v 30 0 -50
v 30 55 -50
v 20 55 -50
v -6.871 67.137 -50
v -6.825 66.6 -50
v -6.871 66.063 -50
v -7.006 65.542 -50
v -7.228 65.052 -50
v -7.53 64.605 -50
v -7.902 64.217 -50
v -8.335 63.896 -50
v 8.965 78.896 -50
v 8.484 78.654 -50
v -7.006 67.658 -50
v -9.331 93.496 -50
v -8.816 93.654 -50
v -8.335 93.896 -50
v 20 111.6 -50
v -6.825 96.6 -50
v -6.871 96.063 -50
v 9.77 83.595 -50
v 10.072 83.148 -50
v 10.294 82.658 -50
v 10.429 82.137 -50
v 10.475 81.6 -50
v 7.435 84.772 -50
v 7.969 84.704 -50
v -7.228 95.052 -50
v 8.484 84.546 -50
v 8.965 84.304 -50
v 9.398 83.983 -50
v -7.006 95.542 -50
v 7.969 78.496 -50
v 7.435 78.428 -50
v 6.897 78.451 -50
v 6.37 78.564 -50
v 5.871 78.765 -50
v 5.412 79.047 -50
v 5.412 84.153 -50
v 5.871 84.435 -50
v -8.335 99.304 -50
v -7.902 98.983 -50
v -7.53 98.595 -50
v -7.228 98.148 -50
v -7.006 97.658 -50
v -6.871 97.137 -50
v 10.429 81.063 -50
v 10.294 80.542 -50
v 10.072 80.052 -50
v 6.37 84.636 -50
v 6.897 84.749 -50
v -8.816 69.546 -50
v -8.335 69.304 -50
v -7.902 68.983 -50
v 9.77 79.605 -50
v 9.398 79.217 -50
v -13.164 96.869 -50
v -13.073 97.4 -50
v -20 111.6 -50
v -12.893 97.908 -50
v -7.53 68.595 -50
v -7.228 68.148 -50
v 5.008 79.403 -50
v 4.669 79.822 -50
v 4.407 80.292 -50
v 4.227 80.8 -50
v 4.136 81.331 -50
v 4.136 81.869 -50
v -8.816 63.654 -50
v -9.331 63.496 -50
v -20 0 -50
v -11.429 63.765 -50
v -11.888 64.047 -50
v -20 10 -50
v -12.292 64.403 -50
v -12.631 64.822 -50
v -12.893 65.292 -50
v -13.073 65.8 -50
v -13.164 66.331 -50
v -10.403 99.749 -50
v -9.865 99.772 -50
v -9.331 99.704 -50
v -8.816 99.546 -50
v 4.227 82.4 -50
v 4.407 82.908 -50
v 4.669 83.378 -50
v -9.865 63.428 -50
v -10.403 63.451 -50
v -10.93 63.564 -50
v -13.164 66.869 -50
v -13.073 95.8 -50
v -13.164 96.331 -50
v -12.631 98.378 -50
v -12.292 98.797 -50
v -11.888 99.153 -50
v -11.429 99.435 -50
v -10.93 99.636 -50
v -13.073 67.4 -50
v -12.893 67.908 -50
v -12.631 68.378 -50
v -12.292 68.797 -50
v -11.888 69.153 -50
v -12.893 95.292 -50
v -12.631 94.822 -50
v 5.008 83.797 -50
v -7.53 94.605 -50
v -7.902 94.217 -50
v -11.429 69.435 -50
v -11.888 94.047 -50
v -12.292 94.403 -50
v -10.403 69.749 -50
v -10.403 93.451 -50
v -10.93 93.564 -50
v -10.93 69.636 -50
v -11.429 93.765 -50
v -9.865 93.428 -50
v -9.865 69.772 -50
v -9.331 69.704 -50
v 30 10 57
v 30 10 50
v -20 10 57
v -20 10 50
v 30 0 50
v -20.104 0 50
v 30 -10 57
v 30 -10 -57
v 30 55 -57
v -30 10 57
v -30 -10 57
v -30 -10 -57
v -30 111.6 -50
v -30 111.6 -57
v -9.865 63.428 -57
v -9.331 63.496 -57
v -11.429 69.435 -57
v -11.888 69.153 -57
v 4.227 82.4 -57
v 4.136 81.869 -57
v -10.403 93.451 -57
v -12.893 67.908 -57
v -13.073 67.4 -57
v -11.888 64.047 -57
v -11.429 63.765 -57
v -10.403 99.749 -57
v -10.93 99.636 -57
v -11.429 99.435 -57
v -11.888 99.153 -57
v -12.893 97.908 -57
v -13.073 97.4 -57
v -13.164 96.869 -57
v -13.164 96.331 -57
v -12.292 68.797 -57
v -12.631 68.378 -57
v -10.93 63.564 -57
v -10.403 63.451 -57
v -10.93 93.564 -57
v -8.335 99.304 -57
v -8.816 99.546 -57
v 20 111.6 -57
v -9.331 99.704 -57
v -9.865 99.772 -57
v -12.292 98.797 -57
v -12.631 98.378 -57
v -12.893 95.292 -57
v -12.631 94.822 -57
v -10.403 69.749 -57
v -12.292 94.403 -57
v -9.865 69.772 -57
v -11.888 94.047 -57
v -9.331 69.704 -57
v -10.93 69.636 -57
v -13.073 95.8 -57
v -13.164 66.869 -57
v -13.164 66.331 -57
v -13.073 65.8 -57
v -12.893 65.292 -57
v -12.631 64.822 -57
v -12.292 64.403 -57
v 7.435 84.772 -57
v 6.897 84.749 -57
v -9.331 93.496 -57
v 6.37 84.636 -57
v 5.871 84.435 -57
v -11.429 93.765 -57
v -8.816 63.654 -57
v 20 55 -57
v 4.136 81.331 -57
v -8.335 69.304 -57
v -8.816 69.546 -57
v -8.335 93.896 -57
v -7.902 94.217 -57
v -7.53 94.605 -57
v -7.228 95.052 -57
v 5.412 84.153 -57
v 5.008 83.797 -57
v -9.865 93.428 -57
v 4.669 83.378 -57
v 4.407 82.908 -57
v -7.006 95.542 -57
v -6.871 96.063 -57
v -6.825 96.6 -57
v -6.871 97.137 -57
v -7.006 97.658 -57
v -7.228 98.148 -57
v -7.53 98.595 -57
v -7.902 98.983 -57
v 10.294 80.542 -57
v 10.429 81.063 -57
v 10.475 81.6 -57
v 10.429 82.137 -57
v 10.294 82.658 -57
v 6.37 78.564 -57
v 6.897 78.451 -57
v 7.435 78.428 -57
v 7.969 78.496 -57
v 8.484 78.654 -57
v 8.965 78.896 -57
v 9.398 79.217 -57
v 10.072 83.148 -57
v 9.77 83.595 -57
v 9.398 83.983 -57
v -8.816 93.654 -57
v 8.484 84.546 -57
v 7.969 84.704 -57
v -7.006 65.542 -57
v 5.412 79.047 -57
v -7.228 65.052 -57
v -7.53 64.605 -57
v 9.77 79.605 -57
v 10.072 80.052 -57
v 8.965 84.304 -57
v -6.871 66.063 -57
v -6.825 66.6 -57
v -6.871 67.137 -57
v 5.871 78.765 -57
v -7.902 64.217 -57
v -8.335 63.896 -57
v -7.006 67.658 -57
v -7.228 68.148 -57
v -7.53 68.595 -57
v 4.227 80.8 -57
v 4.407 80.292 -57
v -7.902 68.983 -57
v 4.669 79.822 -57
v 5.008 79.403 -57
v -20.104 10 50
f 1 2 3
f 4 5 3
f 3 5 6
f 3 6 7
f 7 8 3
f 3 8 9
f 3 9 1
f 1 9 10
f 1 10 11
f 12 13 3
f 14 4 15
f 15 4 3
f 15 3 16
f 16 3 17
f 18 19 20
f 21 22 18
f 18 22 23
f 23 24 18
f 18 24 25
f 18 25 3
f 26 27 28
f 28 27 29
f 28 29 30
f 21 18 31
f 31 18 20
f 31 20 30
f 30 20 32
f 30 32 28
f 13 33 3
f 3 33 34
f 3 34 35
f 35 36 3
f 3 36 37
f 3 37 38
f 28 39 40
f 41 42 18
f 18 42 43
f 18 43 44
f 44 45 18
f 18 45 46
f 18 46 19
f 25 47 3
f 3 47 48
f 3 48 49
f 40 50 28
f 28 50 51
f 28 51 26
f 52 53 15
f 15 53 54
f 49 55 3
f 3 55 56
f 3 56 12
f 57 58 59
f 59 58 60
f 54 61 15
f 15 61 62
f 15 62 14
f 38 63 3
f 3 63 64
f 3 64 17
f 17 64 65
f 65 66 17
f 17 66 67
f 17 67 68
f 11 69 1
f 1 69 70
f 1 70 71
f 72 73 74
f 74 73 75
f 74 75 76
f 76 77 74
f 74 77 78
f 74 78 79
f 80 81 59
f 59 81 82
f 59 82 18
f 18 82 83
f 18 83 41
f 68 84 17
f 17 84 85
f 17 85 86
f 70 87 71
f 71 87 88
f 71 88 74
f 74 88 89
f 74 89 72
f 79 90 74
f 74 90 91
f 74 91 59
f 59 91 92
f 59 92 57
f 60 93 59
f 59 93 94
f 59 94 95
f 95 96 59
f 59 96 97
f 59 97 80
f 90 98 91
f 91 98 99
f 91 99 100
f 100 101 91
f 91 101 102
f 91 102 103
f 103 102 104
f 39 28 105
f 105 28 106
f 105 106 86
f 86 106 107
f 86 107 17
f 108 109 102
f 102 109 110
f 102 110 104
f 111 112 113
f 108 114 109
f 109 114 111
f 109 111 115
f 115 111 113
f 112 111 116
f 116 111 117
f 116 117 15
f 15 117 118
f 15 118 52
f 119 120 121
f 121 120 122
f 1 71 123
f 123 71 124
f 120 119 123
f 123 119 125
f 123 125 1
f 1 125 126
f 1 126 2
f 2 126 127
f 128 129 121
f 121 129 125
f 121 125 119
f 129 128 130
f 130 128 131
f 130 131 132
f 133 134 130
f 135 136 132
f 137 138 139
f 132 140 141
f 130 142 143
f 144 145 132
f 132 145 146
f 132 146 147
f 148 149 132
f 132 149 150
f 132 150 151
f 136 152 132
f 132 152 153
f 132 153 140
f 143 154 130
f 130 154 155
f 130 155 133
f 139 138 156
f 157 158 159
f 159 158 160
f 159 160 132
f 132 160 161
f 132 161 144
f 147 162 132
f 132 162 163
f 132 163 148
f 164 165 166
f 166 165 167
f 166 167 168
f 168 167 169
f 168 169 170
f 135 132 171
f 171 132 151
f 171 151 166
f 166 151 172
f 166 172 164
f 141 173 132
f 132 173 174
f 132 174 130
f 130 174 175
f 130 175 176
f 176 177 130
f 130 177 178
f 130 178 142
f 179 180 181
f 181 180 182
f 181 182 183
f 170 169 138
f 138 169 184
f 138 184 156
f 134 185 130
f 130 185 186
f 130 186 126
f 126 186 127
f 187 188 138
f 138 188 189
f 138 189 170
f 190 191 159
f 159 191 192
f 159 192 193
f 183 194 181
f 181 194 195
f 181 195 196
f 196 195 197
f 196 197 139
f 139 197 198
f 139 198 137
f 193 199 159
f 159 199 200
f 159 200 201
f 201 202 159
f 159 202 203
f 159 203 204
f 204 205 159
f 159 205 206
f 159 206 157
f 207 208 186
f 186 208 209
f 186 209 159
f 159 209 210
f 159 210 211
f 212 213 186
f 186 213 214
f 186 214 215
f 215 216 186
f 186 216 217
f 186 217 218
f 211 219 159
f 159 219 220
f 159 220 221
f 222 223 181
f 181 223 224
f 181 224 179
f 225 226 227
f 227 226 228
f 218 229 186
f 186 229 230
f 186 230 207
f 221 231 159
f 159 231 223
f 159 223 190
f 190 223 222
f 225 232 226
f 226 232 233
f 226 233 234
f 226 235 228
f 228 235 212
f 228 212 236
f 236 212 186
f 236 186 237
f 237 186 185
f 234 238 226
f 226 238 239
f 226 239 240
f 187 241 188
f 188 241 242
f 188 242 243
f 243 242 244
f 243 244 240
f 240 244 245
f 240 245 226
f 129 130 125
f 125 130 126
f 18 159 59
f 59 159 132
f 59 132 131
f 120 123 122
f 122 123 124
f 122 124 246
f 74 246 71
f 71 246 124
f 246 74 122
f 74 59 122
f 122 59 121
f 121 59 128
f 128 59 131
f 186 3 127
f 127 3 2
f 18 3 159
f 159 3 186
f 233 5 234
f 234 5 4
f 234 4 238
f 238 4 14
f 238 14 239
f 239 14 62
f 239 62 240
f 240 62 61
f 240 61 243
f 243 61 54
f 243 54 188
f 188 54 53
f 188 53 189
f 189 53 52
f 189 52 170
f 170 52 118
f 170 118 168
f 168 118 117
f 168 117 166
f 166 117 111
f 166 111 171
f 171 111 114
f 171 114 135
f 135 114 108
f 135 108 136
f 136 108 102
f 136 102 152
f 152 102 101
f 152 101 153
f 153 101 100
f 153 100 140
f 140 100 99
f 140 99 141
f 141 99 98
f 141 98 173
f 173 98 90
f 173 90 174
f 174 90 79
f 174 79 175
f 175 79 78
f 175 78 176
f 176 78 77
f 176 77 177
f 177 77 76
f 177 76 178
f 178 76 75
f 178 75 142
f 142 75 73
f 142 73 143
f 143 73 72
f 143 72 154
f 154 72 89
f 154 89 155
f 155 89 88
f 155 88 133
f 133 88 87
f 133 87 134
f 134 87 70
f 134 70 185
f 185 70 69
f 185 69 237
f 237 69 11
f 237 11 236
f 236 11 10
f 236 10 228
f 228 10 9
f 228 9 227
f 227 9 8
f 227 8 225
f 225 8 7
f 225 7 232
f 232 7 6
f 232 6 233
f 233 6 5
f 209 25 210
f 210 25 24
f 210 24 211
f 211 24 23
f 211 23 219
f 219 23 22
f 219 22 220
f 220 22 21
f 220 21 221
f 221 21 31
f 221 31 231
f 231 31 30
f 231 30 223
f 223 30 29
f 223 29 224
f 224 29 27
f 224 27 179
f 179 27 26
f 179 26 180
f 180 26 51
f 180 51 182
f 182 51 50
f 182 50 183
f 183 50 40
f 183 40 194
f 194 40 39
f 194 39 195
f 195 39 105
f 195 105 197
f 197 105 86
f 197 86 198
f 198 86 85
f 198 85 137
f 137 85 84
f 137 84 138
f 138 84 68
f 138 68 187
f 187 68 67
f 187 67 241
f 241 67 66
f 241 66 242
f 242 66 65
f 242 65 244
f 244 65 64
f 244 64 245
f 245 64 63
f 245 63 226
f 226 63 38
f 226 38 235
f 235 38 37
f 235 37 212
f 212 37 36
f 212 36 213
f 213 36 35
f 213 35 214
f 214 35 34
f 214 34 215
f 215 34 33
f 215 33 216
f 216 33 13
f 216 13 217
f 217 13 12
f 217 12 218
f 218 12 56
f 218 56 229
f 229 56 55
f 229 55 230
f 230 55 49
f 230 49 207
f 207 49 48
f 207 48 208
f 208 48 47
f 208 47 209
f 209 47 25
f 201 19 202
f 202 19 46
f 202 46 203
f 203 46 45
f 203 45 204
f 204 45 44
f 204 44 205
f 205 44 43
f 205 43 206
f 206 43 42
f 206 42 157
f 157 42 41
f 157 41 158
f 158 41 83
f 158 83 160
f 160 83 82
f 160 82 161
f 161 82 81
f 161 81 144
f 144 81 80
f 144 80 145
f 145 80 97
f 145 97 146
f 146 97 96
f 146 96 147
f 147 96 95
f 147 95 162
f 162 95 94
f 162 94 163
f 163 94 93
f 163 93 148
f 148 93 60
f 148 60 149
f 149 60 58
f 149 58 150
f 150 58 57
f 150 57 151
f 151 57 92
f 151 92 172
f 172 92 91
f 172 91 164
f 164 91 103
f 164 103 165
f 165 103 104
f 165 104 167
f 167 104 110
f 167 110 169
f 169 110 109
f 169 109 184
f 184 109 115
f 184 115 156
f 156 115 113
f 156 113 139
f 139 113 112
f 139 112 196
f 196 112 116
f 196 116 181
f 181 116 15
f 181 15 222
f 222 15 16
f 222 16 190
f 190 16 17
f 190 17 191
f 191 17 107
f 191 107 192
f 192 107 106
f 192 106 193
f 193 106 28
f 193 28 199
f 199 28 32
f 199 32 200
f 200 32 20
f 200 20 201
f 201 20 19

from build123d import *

# Parameters (mm, degrees)
SKETCH1_W           = 60
SKETCH1_H           = 114
BOSS_EXTRUDE1_DEPTH = 10
SKETCH3_W           = 60
SKETCH3_H           = 7
BOSS_EXTRUDE2_DEPTH = 111.6
BOSS_EXTRUDE5_DEPTH = 10
BOSS_EXTRUDE3_DEPTH = 10
SKETCH7_W           = 10
SKETCH7_H           = 7
CUT_EXTRUDE1_DEPTH  = 56.6
SKETCH8_R           = 3.175
CUT_EXTRUDE2_DEPTH  = 8


with BuildPart() as part:
    # Sketch1 → Boss-Extrude1 (new body)
    with BuildSketch(Plane(origin=(0, 0, 0), x_dir=(1, 0, 0), z_dir=(0, 1, 0))):
        Rectangle(SKETCH1_W, SKETCH1_H)
    extrude(amount=-BOSS_EXTRUDE1_DEPTH)

    # Sketch3 → Boss-Extrude2 (add)
    with BuildSketch(Plane(origin=(0, 0, 0), x_dir=(1, 0, 0), z_dir=(0, 1, 0))):
        with Locations((0, 53.5)):
            Rectangle(SKETCH3_W, SKETCH3_H)
    extrude(amount=BOSS_EXTRUDE2_DEPTH)

    # Sketch6 → Boss-Extrude5 (add)
    with BuildSketch(Plane(origin=(0, 0, 0), x_dir=(1, 0, 0), z_dir=(0, 1, 0))):
        Polygon((-30, 50), (-20, 50), (-20.103587149, -50), (30, -50), (30, -57), (-30, -57), align=None)
    extrude(amount=BOSS_EXTRUDE5_DEPTH)

    # Sketch4 → Boss-Extrude3 (add)
    with BuildSketch(Plane.ZY.offset(30)):
        Polygon((-57, 10), (57, 10), (-50, 111.6), (-57, 111.6), align=None)
    extrude(amount=-BOSS_EXTRUDE3_DEPTH)

    # Sketch7 → Cut-Extrude1 (cut)
    with BuildSketch(Plane(origin=(0, 111.6, 0), x_dir=(1, 0, 0), z_dir=(0, 1, 0))):
        with Locations((25, 53.5)):
            Rectangle(SKETCH7_W, SKETCH7_H)
    extrude(amount=-CUT_EXTRUDE1_DEPTH, mode=Mode.SUBTRACT)

    # Sketch8 → Cut-Extrude2 (cut, through all)
    with BuildSketch(Plane.XY.offset(-50)):
        with Locations((-10, 96.6)):
            Circle(SKETCH8_R)
        with Locations((7.3, 81.6)):
            Circle(SKETCH8_R)
        with Locations((-10, 66.6)):
            Circle(SKETCH8_R)
    extrude(amount=-CUT_EXTRUDE2_DEPTH, mode=Mode.SUBTRACT)


solid = part.part
